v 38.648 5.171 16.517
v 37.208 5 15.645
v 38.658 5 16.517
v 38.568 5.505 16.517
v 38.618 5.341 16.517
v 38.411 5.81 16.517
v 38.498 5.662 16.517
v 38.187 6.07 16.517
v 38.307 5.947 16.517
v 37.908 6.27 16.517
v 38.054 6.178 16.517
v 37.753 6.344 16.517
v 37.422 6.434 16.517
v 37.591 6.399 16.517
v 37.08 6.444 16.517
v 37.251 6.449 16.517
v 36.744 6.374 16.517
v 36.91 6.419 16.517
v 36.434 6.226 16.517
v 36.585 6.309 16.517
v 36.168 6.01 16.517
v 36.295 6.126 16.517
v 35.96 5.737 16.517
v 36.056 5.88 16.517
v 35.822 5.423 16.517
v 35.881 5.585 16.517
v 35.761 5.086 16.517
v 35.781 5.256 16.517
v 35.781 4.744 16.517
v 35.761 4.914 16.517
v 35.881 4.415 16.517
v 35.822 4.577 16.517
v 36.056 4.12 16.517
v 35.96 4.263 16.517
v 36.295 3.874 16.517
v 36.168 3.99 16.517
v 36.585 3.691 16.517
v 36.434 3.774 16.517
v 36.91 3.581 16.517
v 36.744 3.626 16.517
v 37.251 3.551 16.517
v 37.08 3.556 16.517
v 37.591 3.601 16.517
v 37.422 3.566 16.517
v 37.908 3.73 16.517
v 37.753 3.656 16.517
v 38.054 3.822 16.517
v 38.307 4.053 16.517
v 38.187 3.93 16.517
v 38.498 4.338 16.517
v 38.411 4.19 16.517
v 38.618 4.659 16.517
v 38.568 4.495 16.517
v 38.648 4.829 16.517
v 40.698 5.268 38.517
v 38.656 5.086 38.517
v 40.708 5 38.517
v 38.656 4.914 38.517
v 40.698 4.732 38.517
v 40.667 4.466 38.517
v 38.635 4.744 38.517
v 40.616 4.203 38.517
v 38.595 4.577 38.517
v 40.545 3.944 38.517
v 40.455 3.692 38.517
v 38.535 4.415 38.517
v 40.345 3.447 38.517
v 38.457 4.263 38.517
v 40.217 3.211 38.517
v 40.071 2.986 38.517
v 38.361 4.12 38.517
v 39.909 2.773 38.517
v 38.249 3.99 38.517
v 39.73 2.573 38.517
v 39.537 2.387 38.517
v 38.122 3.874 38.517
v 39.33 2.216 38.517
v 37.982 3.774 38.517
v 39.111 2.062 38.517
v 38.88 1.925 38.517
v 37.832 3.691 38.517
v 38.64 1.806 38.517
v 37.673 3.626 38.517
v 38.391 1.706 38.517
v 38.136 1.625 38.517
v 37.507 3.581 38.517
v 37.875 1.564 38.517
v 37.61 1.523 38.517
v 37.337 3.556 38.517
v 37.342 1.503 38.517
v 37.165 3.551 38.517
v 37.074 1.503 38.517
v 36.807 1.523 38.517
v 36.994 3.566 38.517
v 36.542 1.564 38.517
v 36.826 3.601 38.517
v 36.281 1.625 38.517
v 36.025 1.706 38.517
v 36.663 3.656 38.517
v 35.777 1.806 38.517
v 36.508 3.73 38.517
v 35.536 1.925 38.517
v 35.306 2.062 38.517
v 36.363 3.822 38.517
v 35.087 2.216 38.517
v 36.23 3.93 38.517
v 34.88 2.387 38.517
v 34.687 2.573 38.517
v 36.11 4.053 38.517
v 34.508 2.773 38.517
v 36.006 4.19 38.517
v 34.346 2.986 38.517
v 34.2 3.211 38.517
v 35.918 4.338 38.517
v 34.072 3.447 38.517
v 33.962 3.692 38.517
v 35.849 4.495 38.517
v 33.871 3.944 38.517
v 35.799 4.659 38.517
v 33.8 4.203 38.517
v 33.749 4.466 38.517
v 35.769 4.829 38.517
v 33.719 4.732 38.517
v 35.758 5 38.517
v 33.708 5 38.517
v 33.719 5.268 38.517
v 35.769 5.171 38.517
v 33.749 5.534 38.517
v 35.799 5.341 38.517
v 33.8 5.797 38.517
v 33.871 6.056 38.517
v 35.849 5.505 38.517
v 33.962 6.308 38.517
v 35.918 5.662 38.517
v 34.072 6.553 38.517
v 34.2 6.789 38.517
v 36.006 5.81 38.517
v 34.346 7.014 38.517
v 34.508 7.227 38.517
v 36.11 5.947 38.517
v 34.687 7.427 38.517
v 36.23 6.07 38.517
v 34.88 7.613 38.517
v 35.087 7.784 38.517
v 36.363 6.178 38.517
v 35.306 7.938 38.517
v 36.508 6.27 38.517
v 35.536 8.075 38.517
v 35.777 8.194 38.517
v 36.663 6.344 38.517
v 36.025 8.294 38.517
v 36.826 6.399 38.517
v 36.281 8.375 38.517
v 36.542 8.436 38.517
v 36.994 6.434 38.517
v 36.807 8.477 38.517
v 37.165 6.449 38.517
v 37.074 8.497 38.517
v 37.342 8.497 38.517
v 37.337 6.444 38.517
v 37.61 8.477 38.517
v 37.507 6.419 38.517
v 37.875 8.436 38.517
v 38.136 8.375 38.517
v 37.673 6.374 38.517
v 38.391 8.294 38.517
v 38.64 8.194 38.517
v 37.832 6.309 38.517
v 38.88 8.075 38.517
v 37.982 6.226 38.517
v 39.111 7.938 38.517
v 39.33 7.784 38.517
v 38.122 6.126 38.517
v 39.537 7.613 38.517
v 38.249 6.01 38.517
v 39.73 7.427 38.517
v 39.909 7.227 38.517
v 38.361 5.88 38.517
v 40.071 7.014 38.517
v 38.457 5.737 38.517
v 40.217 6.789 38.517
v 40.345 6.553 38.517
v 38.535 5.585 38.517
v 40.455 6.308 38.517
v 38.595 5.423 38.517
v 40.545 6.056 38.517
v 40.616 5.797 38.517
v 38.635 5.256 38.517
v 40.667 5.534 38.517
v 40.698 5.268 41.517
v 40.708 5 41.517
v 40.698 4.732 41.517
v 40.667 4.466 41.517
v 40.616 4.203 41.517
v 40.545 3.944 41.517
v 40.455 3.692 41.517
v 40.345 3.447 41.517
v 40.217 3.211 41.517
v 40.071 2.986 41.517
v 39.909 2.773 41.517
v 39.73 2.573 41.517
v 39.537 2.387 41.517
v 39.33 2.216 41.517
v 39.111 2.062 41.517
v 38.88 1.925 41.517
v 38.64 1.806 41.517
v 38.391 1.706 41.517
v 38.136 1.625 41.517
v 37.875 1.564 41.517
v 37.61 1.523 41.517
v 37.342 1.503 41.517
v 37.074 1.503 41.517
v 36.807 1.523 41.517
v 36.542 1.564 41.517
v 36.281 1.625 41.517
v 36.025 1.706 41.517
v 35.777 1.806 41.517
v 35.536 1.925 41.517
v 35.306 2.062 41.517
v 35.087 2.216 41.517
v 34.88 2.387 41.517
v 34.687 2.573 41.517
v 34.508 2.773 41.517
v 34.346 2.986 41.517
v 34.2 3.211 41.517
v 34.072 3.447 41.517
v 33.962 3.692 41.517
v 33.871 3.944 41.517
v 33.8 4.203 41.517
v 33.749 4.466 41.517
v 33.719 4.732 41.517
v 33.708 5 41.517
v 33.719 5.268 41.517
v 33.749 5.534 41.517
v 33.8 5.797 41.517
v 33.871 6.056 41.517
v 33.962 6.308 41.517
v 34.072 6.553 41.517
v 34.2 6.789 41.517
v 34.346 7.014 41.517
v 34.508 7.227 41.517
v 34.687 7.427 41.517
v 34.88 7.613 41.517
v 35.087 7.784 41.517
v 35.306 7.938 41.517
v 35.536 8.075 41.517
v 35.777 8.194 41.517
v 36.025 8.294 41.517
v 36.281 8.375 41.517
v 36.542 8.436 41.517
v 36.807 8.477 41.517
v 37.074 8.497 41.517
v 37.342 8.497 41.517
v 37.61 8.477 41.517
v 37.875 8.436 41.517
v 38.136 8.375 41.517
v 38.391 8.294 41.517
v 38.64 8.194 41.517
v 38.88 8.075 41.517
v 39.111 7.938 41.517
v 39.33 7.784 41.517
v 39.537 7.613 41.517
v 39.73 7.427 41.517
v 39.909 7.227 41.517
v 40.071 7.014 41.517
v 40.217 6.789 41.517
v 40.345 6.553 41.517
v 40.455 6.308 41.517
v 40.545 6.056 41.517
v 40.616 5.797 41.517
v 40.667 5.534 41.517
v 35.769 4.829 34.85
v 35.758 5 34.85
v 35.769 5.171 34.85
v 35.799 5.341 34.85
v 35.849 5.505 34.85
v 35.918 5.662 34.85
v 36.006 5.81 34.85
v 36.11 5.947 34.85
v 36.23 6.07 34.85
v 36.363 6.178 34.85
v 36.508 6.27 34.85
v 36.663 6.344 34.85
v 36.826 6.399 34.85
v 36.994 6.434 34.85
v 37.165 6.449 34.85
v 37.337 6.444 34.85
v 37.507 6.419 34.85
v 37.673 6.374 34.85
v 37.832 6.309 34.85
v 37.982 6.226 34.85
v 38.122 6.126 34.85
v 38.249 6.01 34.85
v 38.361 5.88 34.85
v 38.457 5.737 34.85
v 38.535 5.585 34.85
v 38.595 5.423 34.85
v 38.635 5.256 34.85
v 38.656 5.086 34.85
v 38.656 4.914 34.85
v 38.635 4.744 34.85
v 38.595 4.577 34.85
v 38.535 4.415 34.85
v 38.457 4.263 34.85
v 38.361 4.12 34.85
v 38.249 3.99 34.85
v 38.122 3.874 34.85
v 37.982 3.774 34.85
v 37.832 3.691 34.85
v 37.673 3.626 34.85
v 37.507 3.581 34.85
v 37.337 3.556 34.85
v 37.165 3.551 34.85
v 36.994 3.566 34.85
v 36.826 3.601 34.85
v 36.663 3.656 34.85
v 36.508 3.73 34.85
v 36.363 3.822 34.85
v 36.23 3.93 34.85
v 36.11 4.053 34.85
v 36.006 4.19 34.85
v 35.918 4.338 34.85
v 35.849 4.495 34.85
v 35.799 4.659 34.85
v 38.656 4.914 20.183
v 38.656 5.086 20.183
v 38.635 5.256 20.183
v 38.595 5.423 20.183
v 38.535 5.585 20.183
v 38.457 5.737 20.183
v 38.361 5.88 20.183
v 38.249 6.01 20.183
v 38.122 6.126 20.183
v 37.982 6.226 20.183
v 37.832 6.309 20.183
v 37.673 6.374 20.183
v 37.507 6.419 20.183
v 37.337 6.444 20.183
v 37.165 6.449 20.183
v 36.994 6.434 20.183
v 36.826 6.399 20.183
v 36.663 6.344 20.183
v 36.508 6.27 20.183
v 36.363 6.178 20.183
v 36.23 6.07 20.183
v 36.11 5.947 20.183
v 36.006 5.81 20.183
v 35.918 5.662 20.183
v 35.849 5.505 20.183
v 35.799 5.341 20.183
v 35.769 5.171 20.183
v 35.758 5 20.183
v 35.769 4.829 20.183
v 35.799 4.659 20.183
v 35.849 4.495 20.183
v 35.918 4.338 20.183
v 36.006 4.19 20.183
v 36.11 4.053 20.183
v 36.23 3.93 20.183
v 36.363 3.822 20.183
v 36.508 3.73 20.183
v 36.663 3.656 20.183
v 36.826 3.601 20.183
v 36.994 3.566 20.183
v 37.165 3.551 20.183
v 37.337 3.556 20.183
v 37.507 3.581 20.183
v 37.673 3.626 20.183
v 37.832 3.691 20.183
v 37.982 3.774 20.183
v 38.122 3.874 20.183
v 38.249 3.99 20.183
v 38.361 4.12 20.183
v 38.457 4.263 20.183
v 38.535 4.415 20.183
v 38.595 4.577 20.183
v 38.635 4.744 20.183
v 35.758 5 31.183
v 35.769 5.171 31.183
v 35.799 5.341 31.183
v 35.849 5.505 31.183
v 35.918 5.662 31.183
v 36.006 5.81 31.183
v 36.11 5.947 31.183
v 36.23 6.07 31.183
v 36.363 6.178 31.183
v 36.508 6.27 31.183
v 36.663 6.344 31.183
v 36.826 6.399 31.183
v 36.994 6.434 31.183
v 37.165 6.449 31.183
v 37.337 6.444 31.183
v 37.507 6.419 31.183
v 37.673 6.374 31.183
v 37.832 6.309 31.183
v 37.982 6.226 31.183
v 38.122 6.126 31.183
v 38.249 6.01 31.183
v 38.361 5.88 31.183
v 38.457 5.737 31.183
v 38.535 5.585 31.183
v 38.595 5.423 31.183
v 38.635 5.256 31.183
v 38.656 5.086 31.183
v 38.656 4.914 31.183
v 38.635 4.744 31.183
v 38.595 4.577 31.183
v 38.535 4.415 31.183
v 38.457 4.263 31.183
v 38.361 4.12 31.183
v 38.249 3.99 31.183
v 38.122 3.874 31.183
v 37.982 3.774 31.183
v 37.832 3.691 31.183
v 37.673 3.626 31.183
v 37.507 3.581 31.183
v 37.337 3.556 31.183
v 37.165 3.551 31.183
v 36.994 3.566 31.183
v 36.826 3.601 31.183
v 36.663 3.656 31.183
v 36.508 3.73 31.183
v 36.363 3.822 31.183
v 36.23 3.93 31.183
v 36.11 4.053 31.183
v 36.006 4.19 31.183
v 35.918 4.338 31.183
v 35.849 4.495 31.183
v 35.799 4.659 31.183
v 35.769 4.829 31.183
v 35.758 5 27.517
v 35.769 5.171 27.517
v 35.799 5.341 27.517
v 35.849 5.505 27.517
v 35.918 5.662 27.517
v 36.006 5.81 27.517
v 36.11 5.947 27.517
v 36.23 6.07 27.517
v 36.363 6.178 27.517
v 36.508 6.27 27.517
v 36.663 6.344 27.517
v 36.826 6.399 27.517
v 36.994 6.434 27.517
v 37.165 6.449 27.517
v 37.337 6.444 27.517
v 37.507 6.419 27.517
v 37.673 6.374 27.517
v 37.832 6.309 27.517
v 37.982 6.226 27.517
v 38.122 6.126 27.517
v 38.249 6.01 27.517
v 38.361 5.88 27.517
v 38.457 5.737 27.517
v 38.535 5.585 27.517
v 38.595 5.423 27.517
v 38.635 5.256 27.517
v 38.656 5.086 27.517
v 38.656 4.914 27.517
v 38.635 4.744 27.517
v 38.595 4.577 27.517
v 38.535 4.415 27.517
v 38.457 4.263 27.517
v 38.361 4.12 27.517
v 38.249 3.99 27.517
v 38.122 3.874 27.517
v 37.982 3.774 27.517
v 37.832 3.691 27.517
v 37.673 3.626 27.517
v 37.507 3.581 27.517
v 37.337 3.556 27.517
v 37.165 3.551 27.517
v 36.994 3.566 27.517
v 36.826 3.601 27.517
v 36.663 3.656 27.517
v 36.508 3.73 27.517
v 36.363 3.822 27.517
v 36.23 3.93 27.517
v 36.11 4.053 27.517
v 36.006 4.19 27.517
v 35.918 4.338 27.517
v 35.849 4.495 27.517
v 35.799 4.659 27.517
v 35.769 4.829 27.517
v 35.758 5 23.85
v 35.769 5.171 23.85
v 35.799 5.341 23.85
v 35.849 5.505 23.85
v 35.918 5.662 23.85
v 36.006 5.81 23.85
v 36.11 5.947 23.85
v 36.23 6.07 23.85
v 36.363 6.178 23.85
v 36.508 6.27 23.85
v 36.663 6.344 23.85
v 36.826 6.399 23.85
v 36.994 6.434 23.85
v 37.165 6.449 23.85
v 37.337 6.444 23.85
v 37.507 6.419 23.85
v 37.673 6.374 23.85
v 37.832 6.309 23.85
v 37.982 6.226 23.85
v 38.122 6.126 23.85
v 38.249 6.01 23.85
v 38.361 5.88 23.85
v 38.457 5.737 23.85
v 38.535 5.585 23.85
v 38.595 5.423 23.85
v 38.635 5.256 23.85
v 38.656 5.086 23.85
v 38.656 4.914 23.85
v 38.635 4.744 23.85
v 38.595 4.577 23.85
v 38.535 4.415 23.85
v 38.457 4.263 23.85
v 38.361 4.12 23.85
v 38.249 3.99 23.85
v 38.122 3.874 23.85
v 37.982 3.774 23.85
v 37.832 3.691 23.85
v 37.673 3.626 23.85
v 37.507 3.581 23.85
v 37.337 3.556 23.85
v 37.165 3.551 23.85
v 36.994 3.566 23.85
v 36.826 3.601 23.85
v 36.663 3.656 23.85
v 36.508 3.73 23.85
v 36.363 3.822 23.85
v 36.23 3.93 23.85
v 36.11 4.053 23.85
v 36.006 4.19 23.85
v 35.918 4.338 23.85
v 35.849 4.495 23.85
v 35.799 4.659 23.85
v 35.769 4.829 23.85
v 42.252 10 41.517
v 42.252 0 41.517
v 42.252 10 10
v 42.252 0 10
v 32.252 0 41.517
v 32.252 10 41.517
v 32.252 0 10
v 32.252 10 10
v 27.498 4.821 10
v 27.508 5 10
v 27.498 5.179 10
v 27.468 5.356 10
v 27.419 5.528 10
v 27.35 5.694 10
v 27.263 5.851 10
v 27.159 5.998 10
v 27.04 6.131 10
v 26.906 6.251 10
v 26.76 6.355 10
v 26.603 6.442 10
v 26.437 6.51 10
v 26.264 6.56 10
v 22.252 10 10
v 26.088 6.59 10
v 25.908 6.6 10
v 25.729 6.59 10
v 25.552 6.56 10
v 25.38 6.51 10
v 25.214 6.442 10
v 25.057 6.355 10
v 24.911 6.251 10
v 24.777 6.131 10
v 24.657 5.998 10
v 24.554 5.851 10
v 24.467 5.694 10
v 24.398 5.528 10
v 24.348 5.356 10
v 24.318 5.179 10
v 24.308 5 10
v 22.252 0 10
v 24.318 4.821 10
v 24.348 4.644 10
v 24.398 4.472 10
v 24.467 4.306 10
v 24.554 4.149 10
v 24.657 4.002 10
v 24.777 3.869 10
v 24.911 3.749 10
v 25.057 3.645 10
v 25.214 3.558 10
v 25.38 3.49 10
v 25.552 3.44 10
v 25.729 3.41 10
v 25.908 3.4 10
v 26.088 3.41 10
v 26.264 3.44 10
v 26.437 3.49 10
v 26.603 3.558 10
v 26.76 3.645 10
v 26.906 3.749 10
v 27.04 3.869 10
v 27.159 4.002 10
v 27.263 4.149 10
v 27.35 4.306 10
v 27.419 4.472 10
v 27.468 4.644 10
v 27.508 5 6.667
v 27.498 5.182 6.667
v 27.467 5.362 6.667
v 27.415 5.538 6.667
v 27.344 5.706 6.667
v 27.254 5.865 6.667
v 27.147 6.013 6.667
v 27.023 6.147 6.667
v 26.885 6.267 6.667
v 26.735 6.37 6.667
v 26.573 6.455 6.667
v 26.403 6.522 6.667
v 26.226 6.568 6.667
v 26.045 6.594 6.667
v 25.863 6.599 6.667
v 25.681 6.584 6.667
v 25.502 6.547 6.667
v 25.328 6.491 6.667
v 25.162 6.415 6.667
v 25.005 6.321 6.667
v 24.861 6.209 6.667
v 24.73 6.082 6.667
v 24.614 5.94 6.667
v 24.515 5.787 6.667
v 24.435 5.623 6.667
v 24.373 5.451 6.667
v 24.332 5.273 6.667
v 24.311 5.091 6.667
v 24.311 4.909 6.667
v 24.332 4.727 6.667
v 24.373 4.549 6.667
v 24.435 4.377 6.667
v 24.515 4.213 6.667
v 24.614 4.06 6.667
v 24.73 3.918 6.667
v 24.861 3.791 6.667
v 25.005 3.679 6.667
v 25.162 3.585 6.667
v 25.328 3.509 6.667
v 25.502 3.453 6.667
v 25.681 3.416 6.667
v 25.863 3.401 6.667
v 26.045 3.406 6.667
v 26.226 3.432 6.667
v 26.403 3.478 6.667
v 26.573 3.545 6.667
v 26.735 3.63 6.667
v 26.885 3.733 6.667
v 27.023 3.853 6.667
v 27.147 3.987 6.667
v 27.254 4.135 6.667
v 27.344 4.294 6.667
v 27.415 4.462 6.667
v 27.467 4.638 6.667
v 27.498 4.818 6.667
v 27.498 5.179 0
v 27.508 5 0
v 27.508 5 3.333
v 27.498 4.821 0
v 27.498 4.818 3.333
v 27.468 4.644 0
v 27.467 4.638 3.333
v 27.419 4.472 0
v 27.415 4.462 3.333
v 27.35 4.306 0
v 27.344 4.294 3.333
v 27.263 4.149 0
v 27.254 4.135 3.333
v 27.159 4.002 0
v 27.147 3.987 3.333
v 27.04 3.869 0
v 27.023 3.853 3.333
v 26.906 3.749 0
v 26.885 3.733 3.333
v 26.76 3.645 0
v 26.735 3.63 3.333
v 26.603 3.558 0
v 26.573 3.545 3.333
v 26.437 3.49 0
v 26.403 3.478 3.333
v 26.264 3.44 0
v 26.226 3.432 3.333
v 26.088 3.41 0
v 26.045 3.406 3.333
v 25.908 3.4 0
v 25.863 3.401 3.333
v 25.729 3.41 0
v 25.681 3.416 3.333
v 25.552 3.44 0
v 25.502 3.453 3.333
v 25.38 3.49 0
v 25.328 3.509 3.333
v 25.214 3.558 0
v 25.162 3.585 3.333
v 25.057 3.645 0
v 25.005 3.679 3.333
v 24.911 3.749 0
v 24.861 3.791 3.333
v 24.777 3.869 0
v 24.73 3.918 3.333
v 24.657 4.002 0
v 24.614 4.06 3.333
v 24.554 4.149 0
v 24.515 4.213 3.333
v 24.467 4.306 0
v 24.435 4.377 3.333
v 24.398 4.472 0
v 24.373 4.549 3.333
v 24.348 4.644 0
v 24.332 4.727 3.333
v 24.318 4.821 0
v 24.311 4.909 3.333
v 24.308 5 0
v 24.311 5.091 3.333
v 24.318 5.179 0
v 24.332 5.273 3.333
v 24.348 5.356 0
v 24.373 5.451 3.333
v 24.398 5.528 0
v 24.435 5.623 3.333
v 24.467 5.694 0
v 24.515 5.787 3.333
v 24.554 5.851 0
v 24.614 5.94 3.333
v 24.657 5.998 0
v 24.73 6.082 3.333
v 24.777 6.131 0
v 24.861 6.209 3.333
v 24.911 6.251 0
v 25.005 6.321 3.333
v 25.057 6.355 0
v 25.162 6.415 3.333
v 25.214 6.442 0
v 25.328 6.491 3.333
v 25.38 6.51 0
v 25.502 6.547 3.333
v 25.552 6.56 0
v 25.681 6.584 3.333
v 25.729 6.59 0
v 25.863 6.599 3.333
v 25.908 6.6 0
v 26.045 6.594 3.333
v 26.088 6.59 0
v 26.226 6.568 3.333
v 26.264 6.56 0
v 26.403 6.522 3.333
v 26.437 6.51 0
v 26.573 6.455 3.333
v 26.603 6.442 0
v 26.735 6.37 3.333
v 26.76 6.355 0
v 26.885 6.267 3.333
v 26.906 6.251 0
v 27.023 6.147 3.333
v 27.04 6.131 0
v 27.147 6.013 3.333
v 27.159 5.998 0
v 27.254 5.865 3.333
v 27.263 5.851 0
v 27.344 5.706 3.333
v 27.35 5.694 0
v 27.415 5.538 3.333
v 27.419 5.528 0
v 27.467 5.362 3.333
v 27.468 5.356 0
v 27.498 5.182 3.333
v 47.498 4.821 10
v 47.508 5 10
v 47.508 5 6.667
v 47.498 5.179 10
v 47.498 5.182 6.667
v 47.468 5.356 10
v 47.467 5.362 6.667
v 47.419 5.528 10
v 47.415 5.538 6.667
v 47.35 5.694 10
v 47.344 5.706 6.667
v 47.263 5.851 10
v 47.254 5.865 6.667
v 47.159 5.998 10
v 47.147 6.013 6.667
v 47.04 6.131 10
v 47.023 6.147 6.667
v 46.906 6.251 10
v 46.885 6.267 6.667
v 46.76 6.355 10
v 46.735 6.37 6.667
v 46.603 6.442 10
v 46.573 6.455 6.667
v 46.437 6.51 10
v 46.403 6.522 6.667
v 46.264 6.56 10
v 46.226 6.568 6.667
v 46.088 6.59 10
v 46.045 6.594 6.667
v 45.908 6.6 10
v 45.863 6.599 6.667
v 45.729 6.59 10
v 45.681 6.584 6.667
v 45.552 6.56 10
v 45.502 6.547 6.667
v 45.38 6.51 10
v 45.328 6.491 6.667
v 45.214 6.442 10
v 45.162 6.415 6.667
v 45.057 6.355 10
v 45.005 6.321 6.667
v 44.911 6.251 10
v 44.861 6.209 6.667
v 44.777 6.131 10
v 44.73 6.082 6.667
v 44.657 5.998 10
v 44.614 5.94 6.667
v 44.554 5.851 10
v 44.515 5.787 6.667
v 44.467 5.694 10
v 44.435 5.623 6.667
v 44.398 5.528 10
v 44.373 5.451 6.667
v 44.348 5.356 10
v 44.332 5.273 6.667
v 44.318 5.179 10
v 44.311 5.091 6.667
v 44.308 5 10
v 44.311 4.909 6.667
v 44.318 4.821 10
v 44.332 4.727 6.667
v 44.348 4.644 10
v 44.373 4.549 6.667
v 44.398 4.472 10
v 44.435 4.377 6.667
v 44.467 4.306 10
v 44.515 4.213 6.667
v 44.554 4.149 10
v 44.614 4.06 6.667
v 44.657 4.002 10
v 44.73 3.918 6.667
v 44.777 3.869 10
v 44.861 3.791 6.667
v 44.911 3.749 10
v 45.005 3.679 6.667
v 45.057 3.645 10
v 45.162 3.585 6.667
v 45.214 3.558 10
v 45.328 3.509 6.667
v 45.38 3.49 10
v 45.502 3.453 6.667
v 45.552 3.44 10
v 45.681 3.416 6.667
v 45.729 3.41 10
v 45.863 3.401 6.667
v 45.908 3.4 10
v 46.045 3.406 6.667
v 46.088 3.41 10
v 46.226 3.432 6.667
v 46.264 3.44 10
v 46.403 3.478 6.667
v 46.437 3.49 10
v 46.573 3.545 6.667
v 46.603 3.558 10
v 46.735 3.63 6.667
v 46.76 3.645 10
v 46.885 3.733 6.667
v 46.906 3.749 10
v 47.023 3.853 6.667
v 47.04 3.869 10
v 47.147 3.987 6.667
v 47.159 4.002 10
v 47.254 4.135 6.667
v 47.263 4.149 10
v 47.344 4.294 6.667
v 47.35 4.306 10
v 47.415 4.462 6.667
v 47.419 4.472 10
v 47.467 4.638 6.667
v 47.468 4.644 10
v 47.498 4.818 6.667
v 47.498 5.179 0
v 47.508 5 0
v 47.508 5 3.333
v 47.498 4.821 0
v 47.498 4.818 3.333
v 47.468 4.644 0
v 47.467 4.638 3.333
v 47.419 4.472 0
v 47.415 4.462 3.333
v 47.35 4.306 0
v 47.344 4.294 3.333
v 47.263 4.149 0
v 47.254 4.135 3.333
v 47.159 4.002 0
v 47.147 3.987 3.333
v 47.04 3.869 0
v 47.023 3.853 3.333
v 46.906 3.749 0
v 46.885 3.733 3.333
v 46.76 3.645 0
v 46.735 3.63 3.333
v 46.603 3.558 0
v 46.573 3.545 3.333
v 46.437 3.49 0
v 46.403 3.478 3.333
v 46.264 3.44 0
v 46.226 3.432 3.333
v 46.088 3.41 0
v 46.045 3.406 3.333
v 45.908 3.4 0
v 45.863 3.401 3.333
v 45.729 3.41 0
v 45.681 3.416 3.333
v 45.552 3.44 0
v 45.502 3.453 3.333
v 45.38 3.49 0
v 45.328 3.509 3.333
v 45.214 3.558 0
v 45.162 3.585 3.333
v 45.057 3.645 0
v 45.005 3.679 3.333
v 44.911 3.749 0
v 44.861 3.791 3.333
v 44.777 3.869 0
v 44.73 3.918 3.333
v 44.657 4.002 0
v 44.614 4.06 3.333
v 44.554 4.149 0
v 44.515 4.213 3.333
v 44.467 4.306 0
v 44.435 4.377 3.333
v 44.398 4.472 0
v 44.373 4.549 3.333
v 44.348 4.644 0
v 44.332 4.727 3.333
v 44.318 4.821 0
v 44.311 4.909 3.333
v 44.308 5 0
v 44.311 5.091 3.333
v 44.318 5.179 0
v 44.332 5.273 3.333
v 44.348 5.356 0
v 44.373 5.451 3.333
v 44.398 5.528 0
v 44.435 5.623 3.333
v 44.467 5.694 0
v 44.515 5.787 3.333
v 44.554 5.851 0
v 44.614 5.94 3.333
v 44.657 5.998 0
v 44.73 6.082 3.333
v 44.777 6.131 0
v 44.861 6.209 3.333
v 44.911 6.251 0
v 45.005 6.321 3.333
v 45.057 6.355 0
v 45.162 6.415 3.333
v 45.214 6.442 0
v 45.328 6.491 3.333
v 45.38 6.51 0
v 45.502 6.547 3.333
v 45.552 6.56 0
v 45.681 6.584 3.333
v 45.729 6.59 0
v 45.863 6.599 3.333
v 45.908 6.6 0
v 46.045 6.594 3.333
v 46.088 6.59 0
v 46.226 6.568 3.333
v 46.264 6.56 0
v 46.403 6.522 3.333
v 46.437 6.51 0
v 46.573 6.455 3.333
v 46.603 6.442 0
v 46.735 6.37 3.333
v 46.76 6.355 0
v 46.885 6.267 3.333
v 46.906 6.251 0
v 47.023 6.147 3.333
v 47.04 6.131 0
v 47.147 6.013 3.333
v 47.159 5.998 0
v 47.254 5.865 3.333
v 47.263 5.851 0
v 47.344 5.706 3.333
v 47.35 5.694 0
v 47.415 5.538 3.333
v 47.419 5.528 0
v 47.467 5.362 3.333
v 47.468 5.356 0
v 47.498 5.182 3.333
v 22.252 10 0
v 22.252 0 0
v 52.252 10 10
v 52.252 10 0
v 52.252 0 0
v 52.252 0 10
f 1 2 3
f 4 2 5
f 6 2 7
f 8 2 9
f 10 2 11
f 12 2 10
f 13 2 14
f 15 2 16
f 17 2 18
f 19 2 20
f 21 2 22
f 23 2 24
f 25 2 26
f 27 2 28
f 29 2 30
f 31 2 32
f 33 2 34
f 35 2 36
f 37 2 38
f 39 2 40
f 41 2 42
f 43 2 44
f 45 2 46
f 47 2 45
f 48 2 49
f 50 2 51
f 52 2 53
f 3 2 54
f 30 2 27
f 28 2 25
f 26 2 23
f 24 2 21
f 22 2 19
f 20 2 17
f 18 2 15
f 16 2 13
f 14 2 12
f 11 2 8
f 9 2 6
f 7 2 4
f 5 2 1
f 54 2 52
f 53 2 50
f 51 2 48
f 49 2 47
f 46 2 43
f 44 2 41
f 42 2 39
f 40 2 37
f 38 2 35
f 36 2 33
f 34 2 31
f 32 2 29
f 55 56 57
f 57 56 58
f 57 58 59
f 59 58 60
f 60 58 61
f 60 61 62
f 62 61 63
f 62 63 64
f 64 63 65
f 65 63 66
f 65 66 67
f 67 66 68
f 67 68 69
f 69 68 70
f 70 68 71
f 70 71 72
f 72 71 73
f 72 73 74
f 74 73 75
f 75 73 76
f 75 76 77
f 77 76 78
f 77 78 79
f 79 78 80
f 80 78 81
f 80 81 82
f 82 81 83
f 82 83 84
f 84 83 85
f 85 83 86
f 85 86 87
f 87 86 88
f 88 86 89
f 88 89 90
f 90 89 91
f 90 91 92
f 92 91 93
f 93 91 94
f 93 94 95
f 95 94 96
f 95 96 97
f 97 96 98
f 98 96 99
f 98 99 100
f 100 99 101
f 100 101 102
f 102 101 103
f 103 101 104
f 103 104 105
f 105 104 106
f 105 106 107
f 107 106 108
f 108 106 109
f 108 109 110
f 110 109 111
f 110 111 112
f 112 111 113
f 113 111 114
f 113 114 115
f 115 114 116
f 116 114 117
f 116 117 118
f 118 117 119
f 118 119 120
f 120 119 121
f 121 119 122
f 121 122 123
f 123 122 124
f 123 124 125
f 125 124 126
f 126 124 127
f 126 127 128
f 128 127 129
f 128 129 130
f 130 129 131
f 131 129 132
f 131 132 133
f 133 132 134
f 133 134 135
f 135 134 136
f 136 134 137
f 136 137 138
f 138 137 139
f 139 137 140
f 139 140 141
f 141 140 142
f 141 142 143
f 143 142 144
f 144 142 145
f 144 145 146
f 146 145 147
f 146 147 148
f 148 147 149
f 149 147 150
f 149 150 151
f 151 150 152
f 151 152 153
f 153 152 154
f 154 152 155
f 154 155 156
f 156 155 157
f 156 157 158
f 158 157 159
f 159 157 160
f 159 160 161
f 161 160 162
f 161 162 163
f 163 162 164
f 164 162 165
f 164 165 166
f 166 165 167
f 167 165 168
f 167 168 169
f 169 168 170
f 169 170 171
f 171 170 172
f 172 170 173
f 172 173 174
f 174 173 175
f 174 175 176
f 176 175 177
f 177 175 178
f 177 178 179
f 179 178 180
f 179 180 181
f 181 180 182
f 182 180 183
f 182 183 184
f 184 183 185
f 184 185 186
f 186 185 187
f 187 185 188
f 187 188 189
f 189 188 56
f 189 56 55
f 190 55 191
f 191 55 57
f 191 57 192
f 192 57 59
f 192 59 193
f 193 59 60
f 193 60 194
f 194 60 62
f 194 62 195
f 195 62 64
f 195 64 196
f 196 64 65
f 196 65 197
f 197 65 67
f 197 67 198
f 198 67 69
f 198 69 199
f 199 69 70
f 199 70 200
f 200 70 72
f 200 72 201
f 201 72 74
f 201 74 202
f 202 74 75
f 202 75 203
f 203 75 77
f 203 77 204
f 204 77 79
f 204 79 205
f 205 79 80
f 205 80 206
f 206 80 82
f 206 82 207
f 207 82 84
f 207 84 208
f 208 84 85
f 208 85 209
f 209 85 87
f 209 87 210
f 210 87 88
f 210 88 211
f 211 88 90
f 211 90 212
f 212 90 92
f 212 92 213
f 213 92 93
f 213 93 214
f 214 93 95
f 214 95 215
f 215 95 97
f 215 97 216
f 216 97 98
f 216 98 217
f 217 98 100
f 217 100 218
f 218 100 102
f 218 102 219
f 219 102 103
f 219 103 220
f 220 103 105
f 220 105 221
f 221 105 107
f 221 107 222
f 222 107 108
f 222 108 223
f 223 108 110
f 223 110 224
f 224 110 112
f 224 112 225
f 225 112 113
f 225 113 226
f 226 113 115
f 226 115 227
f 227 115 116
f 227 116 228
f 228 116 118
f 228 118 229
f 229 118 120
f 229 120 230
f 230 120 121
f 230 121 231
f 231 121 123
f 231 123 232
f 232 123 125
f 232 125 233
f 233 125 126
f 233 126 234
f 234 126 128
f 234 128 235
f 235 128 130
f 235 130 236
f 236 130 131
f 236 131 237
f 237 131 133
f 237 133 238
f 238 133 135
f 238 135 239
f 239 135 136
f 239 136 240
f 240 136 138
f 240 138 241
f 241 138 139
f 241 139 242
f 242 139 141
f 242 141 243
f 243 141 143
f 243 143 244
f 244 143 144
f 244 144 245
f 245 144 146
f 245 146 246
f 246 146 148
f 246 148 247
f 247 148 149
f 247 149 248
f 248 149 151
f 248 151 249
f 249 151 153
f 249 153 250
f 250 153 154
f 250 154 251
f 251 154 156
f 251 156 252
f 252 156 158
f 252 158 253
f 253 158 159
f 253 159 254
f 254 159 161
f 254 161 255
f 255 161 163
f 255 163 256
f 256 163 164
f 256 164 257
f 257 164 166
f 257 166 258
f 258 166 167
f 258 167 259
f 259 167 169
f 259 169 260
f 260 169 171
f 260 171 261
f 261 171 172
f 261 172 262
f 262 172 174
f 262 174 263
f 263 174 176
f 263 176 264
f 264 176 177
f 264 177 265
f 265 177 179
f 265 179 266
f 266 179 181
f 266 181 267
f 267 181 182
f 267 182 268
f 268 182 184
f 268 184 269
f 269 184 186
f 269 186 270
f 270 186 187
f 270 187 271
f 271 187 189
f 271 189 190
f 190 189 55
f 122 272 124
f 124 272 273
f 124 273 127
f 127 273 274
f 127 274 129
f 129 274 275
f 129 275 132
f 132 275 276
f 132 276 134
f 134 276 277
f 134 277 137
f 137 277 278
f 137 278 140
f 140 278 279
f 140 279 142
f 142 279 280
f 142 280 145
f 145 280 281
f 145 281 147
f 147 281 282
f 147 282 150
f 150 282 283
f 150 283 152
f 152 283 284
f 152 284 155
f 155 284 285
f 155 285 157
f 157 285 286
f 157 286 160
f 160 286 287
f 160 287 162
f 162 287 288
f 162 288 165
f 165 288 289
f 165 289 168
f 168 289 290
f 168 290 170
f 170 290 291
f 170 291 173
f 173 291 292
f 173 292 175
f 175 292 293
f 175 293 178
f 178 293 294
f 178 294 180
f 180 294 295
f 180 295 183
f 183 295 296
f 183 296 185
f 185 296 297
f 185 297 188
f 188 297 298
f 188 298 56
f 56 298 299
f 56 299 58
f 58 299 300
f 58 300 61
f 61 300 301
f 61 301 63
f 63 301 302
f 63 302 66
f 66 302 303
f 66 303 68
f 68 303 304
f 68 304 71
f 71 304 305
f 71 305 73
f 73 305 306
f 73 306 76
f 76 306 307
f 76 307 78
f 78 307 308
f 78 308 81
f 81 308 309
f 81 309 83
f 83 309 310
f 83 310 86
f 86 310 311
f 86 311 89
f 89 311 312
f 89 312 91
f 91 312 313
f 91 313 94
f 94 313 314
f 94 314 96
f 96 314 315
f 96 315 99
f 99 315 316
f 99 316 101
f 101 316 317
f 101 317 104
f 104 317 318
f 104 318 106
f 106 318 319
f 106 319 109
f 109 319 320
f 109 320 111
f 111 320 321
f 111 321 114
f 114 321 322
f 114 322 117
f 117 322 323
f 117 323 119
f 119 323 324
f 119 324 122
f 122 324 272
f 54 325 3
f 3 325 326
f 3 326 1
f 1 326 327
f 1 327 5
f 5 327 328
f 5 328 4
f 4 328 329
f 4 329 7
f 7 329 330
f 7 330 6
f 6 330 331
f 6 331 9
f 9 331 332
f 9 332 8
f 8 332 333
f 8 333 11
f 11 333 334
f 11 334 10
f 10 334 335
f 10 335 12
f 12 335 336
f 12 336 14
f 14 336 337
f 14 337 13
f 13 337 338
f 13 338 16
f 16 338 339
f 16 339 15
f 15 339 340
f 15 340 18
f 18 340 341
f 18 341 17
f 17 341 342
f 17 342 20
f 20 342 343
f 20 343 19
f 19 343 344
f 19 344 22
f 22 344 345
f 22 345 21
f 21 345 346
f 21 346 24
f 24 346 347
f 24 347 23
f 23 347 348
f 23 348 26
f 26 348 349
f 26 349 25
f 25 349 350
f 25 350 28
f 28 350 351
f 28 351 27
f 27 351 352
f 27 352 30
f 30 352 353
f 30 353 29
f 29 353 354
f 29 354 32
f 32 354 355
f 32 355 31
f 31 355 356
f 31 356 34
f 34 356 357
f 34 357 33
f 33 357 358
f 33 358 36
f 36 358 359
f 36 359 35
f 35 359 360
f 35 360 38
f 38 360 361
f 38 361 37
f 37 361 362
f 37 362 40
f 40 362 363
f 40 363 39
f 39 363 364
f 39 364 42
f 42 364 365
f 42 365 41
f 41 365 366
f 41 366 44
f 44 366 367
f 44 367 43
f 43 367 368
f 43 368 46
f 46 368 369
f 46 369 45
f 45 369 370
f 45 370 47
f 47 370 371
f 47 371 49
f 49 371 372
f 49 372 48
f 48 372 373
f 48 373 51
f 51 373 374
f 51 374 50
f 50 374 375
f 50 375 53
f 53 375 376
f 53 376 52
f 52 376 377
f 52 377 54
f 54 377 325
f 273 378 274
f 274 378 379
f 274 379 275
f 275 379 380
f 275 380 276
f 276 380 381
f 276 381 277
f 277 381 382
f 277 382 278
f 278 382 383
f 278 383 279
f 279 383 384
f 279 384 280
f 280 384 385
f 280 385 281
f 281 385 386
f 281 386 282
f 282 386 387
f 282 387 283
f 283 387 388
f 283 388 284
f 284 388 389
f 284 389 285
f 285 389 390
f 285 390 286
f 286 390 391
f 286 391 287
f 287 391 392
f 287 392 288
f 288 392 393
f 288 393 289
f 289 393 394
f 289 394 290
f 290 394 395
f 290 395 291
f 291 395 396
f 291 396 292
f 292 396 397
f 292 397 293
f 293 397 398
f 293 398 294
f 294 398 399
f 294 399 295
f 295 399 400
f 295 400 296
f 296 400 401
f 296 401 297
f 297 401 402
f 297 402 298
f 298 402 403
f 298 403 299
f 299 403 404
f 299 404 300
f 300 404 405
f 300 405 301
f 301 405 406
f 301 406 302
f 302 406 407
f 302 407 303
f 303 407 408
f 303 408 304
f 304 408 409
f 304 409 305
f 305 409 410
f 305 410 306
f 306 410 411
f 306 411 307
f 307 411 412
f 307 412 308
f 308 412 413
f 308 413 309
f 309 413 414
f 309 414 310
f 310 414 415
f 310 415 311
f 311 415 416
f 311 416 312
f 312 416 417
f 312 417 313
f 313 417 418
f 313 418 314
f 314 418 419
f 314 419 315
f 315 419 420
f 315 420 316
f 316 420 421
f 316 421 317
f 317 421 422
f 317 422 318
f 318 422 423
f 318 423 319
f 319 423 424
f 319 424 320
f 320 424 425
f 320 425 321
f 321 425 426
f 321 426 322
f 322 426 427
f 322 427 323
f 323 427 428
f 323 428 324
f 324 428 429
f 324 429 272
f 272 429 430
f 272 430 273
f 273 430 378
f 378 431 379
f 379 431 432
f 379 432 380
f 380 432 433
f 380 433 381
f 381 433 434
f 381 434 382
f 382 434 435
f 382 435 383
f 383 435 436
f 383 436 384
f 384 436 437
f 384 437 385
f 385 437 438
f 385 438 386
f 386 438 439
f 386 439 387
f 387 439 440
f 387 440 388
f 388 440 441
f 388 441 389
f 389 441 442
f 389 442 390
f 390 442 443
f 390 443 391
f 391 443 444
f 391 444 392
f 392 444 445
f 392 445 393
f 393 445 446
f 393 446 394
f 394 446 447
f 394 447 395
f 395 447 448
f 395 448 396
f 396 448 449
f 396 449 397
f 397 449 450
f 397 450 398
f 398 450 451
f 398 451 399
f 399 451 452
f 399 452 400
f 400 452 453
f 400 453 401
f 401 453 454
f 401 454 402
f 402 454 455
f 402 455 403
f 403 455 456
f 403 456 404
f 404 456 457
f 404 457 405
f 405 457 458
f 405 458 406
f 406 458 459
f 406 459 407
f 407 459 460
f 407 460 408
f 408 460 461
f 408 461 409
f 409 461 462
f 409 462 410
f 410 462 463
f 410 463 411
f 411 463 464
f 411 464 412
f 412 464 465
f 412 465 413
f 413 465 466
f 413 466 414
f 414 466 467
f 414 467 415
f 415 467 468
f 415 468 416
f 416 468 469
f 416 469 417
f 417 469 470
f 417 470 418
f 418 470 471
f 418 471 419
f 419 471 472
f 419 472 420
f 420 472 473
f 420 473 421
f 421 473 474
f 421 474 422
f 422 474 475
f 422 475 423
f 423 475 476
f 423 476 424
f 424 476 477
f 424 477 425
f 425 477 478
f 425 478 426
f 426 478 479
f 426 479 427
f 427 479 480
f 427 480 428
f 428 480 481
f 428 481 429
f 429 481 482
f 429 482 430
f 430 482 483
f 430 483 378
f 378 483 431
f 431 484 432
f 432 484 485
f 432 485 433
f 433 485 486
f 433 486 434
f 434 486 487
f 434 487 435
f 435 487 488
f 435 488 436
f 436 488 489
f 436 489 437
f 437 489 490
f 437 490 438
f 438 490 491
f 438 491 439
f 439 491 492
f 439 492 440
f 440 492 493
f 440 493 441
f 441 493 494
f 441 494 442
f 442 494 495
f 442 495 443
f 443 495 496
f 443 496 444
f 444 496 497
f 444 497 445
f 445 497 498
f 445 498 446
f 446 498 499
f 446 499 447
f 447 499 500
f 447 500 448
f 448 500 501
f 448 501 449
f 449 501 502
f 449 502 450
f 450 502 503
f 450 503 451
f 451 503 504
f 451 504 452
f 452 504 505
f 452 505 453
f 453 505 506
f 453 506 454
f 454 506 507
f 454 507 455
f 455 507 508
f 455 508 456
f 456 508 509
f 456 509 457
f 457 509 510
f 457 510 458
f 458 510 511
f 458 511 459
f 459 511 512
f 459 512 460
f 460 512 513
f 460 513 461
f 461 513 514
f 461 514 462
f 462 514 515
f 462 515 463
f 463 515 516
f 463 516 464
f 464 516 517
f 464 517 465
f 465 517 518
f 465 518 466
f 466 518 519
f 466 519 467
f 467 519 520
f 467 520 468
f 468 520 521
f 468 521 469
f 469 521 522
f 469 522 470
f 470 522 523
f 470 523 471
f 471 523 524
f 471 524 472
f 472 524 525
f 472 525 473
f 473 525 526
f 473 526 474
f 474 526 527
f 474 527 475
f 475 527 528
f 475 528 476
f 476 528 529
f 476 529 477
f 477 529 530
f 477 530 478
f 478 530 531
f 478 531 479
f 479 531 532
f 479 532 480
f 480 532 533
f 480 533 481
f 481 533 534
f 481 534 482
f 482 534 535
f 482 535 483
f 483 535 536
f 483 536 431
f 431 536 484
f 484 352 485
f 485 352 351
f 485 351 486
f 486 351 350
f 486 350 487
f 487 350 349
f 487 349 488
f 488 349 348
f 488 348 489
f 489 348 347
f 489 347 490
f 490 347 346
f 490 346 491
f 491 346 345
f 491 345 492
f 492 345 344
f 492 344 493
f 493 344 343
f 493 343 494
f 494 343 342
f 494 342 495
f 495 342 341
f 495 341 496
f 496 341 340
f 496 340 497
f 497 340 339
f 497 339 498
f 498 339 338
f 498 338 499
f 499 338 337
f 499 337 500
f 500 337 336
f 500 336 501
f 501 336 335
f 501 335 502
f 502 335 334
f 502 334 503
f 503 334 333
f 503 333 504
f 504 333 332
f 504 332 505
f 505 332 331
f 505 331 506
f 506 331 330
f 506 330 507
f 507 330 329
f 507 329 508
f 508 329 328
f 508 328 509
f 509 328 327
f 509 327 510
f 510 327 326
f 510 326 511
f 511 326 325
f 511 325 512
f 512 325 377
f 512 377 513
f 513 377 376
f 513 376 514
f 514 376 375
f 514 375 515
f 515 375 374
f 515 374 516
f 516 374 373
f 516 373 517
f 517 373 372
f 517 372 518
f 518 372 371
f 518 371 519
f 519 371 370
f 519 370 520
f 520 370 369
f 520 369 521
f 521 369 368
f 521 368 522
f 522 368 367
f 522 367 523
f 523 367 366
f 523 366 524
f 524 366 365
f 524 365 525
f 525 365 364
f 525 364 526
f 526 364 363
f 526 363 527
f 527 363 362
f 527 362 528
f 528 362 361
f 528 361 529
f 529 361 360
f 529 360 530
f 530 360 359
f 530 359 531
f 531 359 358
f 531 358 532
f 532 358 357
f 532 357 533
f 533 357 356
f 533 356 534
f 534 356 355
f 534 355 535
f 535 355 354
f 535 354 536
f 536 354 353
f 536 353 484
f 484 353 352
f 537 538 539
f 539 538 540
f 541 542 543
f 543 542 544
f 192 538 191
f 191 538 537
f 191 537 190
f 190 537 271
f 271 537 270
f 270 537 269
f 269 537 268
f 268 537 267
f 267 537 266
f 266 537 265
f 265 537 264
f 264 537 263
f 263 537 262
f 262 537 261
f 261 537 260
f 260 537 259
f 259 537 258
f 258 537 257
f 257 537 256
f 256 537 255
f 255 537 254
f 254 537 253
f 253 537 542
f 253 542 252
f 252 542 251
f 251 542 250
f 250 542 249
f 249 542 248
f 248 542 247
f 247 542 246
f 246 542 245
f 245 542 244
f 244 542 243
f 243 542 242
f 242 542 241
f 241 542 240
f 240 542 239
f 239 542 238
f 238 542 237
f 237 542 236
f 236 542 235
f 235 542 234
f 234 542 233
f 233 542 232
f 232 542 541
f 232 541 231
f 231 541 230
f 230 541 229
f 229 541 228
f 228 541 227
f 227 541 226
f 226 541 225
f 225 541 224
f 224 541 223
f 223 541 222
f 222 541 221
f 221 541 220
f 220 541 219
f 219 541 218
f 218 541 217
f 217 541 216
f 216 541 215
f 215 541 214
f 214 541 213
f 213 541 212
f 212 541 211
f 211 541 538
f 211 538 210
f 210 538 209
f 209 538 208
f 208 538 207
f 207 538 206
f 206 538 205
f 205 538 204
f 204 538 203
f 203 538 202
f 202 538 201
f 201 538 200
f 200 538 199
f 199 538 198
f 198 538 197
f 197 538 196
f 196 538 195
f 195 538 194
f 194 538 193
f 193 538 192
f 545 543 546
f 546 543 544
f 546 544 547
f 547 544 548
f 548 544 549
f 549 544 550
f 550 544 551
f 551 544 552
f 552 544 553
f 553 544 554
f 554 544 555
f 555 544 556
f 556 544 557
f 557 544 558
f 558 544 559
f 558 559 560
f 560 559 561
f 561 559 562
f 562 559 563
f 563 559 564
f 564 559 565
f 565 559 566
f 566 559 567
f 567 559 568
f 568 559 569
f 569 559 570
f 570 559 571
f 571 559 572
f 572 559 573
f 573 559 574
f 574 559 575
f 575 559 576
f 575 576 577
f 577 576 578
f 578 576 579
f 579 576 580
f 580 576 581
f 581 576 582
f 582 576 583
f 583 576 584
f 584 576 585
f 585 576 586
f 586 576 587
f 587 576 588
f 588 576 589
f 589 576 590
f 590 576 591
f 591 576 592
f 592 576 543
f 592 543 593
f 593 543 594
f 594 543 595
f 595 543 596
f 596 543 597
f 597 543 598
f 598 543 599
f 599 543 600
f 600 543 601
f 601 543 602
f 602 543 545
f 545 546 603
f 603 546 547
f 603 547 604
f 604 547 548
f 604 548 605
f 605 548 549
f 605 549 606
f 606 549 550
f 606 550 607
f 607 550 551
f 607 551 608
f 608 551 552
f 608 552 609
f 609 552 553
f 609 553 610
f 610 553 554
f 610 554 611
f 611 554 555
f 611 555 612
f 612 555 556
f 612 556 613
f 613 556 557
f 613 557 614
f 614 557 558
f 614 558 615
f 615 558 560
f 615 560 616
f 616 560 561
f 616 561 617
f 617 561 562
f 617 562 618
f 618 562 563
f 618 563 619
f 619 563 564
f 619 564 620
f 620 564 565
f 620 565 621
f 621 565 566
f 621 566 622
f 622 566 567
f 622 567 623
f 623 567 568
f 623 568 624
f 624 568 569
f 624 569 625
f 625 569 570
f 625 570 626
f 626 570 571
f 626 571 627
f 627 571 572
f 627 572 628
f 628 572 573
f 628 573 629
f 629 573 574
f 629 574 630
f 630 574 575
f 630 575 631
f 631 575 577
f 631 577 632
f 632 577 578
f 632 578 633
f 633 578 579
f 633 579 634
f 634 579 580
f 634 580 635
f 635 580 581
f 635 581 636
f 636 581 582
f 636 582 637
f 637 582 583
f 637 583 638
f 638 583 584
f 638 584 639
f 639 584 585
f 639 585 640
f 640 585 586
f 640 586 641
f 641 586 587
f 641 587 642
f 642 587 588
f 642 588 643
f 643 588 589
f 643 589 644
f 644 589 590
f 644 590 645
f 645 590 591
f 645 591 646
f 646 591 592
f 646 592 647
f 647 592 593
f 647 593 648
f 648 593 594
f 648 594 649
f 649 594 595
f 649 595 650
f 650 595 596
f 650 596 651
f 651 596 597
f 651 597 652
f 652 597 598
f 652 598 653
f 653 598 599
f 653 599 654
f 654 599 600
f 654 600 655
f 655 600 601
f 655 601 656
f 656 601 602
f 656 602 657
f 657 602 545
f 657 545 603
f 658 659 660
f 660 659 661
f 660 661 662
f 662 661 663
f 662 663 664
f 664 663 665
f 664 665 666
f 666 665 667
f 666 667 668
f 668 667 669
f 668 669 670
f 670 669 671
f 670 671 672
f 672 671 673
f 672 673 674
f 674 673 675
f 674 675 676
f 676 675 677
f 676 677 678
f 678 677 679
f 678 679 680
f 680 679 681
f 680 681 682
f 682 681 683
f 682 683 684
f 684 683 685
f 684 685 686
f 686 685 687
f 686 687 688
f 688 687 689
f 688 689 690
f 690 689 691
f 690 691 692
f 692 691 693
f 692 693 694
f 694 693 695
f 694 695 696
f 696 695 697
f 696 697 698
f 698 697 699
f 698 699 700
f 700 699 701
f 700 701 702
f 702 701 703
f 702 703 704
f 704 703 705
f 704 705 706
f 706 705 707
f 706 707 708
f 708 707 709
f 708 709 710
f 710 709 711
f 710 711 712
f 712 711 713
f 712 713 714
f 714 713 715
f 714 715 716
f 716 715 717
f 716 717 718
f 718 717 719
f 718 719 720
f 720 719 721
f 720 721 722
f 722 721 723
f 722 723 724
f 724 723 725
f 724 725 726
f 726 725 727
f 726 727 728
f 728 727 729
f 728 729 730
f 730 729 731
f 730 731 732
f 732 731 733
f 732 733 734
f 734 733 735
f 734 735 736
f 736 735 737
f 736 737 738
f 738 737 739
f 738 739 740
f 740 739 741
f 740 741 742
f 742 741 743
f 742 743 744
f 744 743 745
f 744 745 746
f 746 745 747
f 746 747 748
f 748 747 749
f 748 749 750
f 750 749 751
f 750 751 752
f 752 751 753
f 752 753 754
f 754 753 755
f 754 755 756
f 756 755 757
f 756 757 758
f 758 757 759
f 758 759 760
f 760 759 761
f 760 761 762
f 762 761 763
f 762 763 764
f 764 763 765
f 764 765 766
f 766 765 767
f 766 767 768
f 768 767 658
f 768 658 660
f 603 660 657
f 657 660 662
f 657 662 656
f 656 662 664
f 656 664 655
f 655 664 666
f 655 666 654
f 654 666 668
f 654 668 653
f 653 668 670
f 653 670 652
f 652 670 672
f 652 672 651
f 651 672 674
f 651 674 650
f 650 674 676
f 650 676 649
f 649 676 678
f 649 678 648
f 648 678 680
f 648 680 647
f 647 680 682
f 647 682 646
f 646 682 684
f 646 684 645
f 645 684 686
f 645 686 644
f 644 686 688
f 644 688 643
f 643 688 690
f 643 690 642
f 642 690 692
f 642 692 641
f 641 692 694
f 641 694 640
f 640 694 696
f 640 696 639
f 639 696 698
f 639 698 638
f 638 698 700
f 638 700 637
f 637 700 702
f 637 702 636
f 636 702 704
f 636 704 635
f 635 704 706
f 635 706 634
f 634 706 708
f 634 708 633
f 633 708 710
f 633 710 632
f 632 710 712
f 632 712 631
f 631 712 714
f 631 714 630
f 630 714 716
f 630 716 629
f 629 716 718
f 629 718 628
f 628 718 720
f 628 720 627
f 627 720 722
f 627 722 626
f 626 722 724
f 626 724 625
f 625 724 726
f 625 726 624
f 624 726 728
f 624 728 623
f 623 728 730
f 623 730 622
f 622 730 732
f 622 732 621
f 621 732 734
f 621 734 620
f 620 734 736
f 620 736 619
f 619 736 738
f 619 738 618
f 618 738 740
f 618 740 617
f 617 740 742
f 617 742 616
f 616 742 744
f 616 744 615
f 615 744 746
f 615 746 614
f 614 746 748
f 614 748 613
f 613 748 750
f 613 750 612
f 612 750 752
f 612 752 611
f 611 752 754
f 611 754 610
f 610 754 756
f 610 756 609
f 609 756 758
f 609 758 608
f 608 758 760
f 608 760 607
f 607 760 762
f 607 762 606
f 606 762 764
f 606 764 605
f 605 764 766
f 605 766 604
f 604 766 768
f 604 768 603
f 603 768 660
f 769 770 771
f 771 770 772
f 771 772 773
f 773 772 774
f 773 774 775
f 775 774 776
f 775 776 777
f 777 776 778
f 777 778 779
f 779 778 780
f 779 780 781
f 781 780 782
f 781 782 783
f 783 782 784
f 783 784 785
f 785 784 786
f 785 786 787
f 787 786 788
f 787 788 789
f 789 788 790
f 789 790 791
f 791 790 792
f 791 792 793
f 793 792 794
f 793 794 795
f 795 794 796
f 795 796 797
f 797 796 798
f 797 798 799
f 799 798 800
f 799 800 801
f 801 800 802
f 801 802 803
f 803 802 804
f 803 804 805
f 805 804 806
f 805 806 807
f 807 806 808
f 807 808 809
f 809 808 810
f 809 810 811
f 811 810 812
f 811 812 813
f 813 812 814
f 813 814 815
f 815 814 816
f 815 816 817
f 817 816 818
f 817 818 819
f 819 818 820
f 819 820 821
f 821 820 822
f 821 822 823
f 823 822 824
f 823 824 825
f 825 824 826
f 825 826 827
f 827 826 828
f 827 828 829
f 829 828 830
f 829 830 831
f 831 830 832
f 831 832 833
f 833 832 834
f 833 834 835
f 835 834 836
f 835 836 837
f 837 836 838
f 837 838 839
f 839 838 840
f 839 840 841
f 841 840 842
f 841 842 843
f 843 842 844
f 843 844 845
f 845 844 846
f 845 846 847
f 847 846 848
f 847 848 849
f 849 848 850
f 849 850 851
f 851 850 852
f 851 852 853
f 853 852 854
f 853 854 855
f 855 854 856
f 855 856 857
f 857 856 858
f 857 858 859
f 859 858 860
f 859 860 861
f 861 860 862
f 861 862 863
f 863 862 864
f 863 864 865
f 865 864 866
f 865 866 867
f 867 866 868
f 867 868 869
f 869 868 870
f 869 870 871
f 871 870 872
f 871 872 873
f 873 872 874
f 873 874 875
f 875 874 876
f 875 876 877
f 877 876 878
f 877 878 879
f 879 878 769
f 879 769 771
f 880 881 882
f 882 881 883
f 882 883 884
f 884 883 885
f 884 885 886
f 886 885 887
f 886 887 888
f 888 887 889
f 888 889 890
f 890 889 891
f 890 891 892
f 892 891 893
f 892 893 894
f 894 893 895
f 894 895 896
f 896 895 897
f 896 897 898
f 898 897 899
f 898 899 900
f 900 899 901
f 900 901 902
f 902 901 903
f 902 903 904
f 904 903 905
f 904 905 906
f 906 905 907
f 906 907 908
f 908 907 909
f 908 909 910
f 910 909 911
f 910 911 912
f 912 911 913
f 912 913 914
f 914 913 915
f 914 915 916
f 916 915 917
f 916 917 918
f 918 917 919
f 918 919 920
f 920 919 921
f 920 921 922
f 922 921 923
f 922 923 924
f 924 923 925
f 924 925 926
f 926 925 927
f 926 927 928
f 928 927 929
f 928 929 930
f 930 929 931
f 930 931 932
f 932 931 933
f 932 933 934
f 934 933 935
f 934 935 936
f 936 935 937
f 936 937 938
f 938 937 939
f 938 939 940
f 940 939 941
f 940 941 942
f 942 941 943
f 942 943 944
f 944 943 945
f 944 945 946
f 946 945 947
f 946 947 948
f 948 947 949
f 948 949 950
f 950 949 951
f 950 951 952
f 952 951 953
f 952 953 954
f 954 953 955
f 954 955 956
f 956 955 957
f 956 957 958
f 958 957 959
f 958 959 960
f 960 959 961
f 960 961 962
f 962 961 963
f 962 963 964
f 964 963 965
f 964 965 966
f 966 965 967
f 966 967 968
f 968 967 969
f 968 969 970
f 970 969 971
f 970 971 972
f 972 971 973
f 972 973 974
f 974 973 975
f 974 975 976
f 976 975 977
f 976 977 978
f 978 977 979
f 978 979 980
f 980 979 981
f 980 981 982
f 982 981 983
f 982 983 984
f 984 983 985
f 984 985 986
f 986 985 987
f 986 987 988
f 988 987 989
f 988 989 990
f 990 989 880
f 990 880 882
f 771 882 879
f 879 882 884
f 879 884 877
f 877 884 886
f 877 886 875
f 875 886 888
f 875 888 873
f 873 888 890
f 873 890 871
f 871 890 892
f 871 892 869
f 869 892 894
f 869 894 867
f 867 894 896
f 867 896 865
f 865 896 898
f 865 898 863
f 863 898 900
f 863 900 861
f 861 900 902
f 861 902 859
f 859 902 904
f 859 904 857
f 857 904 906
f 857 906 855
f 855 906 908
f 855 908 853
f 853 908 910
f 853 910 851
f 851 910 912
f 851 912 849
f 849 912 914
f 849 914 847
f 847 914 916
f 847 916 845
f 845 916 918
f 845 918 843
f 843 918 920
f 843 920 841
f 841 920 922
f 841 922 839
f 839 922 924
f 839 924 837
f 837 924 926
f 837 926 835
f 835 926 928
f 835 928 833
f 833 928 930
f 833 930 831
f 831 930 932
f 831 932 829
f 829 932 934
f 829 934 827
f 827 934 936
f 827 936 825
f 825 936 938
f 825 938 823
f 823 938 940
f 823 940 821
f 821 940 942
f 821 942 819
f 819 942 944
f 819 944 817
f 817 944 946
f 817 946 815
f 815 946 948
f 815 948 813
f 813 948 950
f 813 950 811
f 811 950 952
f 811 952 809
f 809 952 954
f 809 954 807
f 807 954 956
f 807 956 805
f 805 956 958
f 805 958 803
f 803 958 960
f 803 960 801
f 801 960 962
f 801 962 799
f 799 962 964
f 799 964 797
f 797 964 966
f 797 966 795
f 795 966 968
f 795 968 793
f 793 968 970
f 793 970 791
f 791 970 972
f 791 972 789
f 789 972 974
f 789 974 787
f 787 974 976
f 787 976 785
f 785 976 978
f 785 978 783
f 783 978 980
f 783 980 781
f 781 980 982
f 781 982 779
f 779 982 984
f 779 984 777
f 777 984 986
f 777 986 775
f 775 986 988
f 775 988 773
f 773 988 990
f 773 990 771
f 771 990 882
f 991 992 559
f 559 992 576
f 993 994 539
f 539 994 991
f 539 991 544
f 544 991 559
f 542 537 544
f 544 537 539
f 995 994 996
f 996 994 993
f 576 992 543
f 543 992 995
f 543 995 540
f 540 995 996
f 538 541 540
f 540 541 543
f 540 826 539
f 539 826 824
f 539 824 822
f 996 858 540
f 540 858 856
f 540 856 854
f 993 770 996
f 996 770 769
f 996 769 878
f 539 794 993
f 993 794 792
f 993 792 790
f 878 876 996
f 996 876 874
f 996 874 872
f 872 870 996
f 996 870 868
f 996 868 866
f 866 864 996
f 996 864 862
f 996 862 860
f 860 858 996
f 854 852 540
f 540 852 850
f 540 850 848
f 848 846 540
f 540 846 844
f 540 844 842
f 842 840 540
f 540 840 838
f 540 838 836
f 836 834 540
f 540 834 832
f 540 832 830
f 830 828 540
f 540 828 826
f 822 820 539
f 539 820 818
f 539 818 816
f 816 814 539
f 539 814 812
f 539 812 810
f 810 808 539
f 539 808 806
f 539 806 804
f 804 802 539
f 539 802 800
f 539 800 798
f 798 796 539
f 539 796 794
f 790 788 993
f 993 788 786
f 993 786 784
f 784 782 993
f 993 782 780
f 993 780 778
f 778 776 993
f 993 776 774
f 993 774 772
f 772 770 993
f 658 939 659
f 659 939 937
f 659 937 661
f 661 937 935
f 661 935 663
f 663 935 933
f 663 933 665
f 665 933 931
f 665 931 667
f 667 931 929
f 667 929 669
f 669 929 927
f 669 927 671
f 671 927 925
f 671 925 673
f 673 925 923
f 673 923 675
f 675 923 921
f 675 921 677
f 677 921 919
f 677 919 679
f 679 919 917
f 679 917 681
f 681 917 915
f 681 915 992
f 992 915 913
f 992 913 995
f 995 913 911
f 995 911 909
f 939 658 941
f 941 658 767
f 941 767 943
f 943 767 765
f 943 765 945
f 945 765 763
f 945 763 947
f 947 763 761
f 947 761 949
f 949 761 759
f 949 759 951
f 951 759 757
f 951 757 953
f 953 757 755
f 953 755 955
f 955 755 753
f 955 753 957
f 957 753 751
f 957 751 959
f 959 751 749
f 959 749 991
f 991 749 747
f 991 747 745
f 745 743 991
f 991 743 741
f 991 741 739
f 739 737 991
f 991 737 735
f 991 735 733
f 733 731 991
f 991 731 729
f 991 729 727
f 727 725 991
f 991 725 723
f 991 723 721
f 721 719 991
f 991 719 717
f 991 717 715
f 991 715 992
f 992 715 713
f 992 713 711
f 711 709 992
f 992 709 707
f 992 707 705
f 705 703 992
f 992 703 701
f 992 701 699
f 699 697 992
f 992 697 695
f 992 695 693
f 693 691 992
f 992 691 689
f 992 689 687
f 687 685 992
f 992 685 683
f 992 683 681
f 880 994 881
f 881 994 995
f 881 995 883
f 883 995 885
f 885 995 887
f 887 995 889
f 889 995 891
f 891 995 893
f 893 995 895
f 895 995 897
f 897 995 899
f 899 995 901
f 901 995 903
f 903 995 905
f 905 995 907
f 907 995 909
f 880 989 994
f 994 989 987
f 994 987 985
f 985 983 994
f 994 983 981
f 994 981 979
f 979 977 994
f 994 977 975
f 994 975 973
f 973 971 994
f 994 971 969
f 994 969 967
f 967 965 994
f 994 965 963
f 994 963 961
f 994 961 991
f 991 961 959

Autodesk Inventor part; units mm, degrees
ref_plane "YZ Plane" through (0, 0, 0) normal (1, 0, 0) x (0, 1, 0)
ref_plane "XZ Plane" through (0, 0, 0) normal (0, 1, 0) x (-1, 0, 0)
ref_plane "Work Plane1" through (0, 0, 0) normal (0, 0, 1) x (1, 0, 0)
sketch "Sketch1" plane through (0, 0, 0) normal (0, 0, 1) x (1, 0, 0)
  circle A0 centre (45.9084, 5) radius 1.45 projected
  circle A1 centre (25.9084, 5) radius 1.45 projected
  line L0 (-21.0053, 0) -> (95.5084, 0) projected
  line L1 (95.5084, 10) -> (-17.0053, 10) projected
  line L2 (22.2515, 0) -> (52.2515, 0)
  line L3 (52.2515, 0) -> (52.2515, 10)
  line L4 (52.2515, 10) -> (22.2515, 10)
  line L5 (22.2515, 10) -> (22.2515, 0)
  line L6 (22.2515, 0) -> (52.2515, 10) construction
  line L7 (52.2515, 0) -> (22.2515, 10) construction
  circle A2 centre (45.9084, 5) radius 1.6
  circle A3 centre (25.9084, 5) radius 1.6
  point P0 (0, 0)
  point P1 (37.2515, 5)
  dimension "d0" = 30
  dimension "d1" = 3.2
  dimension "d2" = 3.2
extrude "Extrusion1" add sketch "Sketch1" along normal blind 10 contours L5 L1 L3 L0
sketch "Sketch2" plane through (0, 0, 10) normal (0, 0, 1) x (1, 0, 0)
  line L0 (95.5084, 10) -> (-17.0053, 10) projected
  circle A0 centre (-15.5458, 215.5) radius 2.15 projected
  circle A1 centre (-15.5458, 5) radius 2.15 projected
  circle A2 centre (88.9625, 5) radius 2.15 projected
  circle A3 centre (88.9625, 215.5) radius 2.15 projected
  circle A4 centre (-6.0916, 148.2) radius 1.45 projected
  circle A5 centre (77.9084, 141.8) radius 1.45 projected
  circle A6 centre (71.5084, 15.8) radius 1.45 projected
  circle A7 centre (-6.0916, 15.8) radius 1.45 projected
  circle A8 centre (-12.2916, 22) radius 1.45 projected
  circle A9 centre (77.7084, 22) radius 1.45 projected
  circle A10 centre (71.5084, 148.2) radius 1.45 projected
  circle A11 centre (-12.2916, 143.3875) radius 1.45 projected
  arc A12 (-3.9916, 144.2) -> (-7.9916, 140.2) centre (-3.9916, 140.2) ccw projected
  line L1 (-3.9916, 144.2) -> (69.4084, 144.2) projected
  arc A13 (73.4084, 140.2) -> (69.4084, 144.2) centre (69.4084, 140.2) ccw projected
  line L2 (73.4084, 140.2) -> (73.4084, 24.1) projected
  arc A14 (69.4084, 20.1) -> (73.4084, 24.1) centre (69.4084, 24.1) ccw projected
  line L3 (69.4084, 20.1) -> (-3.9916, 20.1) projected
  arc A15 (-7.9916, 24.1) -> (-3.9916, 20.1) centre (-3.9916, 24.1) ccw projected
  line L4 (-7.9916, 24.1) -> (-7.9916, 140.2) projected
  line L5 (-21.0053, 220.5) -> (-21.0053, 0) projected
  line L6 (-21.0053, 0) -> (95.5084, 0) projected
  line L7 (95.5084, 0) -> (95.5084, 220.5) projected
  line L8 (95.5084, 220.5) -> (-21.0053, 220.5) projected
  line L9 (52.2515, 0) -> (52.2515, 10) projected
  line L10 (22.2515, 10) -> (22.2515, 0) projected
  line L11 (-21.0053, 0) -> (95.5084, 0) projected
  line L12 (42.2515, 10) -> (32.2515, 10)
  line L13 (32.2515, 10) -> (32.2515, 0)
  line L14 (32.2515, 0) -> (42.2515, 0)
  line L15 (42.2515, 0) -> (42.2515, 10)
  line L16 (42.2515, 10) -> (32.2515, 0) construction
  line L17 (32.2515, 10) -> (42.2515, 0) construction
  point P0 (0, 0)
  point P1 (37.2515, 5)
  dimension "d5" = 10
  dimension "d6" = 10
ref_plane "Work Plane2" through (-21.0916, 0, 41.5167) normal (0, 0, -1) x (0, 1, 0)
extrude "Extrusion2" add sketch "Sketch2" along normal up to surface (31.5167 mm away) contours L15 L6 L13 L0
sketch "Sketch3" plane through (32.2515, 10, 41.5167) normal (0, 0, 1) x (1, 0, 0)
  line L0 (10, -10) -> (10, 0) projected
  line L1 (0, 0) -> (0, -10) projected
  line L2 (-49.2569, 0) -> (63.2569, 0) projected
  line L3 (63.2569, -10) -> (-53.3431, -10) projected
  circle A0 centre (-47.7973, -5) radius 3.5 projected
  circle A1 centre (4.9569, -5) radius 3.5
  point P0 (-32.2515, -10)
hole "Hole1" at (37.2084, 5, 41.5167) direction (0, 0, -1) diameter 2.9 depth 25 tip angle 118 counterbore diameter 7 counterbore depth 3
properties part number "00_3rdleg"
